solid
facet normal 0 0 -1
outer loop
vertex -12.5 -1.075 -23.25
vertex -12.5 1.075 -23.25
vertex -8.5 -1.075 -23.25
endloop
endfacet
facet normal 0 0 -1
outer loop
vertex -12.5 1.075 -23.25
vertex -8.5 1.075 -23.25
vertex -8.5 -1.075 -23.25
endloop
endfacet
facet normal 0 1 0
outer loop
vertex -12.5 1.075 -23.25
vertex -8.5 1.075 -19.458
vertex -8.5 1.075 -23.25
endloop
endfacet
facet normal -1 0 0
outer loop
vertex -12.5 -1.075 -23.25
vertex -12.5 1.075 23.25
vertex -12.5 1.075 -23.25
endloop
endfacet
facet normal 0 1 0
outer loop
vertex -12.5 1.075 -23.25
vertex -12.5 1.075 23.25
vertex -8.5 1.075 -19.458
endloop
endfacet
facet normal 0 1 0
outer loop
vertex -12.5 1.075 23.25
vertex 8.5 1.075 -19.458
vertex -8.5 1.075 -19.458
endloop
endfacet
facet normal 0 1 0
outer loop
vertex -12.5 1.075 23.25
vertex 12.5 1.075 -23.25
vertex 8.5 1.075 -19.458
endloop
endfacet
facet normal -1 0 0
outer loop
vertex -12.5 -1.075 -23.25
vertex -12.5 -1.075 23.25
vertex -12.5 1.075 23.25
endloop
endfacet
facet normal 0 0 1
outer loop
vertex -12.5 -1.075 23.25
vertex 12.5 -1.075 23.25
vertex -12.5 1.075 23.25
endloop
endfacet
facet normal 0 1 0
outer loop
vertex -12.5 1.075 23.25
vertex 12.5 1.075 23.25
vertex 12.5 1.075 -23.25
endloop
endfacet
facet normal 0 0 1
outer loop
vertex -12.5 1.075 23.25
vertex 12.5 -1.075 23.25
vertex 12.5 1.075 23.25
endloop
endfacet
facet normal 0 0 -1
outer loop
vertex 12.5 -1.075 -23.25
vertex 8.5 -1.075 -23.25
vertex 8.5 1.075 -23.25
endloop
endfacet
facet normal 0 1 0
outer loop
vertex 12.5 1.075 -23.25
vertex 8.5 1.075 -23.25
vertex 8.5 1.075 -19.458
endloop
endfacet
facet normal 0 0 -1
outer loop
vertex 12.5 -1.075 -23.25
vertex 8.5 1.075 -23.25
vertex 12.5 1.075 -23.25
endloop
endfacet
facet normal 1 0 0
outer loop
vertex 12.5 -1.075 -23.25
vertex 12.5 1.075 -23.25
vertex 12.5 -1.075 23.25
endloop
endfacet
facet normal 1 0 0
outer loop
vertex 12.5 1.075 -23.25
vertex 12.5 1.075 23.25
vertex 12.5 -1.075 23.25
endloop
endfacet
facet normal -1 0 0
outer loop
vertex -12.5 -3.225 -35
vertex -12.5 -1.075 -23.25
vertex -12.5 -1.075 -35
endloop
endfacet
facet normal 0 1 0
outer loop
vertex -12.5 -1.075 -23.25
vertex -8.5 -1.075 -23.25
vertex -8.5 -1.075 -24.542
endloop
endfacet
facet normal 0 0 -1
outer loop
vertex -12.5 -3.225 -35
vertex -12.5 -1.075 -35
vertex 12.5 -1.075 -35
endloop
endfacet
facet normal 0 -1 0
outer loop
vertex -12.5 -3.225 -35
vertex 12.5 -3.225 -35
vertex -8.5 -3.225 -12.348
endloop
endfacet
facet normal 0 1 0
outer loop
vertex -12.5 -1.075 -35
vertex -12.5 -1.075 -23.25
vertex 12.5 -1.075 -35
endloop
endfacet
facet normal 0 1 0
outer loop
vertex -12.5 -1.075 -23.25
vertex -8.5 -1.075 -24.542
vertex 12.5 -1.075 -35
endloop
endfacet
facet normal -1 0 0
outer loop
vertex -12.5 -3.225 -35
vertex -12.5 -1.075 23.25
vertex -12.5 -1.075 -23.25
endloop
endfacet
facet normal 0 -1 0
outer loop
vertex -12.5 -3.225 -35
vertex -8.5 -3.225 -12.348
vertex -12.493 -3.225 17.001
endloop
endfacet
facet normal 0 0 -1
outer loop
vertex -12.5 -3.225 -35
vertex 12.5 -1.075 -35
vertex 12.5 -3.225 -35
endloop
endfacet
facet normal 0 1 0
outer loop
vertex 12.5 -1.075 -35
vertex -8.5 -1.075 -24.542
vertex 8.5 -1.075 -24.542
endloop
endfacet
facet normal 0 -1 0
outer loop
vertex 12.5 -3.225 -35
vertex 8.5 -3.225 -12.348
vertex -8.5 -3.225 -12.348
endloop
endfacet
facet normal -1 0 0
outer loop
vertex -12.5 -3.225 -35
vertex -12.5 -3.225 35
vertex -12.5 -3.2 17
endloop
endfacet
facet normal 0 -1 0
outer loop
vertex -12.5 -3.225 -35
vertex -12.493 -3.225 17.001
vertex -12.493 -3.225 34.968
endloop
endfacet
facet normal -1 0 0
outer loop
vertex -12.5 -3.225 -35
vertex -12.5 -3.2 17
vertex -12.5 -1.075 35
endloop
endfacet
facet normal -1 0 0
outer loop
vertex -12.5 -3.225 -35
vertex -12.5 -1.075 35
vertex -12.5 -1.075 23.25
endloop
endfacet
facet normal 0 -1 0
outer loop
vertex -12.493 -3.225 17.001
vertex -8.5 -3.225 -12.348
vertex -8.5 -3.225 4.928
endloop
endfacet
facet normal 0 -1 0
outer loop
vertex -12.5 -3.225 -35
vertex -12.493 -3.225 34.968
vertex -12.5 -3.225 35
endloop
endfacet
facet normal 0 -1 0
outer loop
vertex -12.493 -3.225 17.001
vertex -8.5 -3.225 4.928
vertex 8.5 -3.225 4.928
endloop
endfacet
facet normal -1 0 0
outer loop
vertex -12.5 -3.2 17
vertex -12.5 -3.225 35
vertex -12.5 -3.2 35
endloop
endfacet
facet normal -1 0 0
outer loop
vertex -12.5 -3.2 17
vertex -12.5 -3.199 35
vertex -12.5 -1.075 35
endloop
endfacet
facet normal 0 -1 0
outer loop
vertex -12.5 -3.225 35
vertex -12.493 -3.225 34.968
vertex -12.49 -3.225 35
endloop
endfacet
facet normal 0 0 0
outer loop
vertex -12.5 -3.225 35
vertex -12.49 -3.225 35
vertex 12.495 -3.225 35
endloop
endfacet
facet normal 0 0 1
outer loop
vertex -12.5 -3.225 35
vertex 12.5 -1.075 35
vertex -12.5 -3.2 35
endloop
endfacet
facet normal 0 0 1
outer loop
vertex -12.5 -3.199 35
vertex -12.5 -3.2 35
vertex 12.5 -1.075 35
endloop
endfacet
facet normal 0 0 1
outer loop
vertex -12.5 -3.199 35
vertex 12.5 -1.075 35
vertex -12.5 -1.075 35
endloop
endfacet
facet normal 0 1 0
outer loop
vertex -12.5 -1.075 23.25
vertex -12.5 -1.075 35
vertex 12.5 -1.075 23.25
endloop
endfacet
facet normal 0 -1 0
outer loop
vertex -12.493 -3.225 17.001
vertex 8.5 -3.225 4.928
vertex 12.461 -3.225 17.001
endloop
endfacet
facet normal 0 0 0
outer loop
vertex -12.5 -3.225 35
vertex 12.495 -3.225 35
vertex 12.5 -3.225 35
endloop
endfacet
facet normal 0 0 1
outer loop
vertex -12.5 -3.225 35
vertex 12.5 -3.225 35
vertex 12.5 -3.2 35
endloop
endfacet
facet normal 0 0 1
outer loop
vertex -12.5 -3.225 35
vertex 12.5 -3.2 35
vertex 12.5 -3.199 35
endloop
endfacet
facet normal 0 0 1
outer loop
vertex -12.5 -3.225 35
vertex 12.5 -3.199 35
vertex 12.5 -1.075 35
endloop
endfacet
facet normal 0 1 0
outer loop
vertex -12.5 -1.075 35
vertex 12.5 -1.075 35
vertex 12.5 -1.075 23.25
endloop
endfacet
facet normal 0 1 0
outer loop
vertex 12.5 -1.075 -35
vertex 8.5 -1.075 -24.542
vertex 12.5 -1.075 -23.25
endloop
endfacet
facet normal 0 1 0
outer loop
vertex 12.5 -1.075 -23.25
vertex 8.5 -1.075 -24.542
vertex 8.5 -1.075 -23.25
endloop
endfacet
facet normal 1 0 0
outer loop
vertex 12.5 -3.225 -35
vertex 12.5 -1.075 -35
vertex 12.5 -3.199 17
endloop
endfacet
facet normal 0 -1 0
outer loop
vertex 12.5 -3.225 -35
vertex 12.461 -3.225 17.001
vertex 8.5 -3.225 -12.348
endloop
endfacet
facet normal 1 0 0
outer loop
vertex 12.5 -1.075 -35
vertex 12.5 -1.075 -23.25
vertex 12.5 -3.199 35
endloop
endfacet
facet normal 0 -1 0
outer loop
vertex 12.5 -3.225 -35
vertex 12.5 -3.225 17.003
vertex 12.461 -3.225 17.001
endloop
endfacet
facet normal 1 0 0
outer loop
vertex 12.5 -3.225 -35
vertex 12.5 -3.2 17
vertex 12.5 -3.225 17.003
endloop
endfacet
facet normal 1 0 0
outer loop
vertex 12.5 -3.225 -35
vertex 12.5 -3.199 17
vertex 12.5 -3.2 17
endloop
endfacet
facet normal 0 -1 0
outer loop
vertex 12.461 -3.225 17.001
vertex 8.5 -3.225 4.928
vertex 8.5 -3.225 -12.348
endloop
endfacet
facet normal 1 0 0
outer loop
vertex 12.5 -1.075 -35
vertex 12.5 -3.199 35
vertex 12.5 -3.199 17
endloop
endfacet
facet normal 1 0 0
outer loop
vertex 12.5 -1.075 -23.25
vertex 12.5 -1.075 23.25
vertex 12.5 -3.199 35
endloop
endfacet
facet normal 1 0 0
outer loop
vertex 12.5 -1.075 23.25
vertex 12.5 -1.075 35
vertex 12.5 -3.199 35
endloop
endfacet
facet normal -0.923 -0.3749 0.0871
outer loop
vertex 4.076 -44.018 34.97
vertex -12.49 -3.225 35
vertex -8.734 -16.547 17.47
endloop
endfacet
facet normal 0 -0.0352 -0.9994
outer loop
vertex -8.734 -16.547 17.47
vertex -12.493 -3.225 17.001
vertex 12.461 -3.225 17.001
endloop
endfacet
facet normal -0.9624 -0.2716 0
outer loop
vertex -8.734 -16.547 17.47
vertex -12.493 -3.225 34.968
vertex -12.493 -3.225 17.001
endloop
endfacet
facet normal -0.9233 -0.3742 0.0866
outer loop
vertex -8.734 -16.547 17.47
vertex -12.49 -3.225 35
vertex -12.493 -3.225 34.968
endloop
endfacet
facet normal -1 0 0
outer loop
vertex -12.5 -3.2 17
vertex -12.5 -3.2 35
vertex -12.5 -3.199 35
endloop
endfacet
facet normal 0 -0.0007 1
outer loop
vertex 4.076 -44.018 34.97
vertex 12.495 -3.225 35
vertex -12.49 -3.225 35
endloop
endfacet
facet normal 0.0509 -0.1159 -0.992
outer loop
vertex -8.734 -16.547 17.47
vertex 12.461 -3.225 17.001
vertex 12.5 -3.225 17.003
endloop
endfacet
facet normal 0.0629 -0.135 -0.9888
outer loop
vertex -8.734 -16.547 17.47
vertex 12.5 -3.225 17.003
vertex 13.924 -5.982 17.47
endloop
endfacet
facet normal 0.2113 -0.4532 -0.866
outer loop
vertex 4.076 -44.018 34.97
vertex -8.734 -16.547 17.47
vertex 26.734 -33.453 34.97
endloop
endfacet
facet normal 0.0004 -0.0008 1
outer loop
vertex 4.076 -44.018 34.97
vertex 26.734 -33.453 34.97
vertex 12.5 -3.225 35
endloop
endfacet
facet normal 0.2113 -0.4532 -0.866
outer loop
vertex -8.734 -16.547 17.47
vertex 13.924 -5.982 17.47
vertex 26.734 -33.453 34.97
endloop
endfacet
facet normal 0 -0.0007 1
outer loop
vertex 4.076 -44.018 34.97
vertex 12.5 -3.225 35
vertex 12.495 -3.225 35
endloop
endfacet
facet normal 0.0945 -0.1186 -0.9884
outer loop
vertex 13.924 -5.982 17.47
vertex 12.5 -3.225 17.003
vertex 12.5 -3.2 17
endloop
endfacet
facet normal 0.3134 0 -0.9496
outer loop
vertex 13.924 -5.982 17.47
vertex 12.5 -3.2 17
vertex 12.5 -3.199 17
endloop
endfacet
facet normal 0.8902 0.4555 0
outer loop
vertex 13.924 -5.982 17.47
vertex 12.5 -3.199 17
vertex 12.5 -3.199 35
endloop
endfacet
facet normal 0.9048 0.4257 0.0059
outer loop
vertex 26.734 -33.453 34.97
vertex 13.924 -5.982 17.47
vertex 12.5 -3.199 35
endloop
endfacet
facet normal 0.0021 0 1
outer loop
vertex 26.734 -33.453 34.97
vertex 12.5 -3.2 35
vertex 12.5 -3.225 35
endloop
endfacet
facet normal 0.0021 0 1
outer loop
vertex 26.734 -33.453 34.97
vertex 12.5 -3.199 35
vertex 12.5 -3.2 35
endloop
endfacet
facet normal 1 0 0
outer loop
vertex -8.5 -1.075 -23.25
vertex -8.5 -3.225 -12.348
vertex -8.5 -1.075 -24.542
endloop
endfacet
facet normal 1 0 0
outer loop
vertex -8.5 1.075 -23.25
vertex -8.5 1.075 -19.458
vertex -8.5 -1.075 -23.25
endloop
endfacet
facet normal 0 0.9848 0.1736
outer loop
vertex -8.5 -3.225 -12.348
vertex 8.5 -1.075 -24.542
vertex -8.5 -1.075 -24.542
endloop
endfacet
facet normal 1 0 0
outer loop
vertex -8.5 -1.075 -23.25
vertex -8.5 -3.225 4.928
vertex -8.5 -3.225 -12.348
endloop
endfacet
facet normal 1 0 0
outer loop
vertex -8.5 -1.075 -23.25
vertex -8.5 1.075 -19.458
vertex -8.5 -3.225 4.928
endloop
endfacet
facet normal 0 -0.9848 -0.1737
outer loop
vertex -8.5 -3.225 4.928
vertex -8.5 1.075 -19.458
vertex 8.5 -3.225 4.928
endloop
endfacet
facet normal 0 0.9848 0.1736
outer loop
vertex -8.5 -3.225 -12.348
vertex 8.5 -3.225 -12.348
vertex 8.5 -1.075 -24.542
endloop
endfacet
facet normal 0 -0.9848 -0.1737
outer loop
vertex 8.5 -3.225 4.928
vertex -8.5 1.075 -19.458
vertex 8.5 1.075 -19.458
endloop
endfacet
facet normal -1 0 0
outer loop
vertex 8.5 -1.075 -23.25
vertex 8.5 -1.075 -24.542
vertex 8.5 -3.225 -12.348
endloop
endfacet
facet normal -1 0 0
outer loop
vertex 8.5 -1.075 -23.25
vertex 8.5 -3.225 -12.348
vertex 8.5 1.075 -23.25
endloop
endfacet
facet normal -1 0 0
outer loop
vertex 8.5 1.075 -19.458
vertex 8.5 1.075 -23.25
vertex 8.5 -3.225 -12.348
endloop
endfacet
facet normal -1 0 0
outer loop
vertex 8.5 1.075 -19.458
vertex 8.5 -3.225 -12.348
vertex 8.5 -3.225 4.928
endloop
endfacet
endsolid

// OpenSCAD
module printerSide() {
    difference() {
        cube([150, 2.15, 47+(26*2)], center=true);
        translate([0,0.01,0]) cube([80, 10, 46.5], center=true);
    }
}

%printerSide();

difference() {
    union() {
        cube([25, 2.15, 46.5], center=true);
        translate([0,-2.15,0]) cube([25, 2.15, 70], center=true);
        
        hull() {
            translate([0,-3.30+0.1,26]) cube([25,0.001,18], center=true);
            translate([9,-25,26.22]) rotate([0,0,25]) rotate([60,0,0]) cube([25,0.001,35], center=true);
        }
    }
    translate([0,0,-22]) rotate([10,0,0]) cube([17,3,60], center=true); // cable slot
}
